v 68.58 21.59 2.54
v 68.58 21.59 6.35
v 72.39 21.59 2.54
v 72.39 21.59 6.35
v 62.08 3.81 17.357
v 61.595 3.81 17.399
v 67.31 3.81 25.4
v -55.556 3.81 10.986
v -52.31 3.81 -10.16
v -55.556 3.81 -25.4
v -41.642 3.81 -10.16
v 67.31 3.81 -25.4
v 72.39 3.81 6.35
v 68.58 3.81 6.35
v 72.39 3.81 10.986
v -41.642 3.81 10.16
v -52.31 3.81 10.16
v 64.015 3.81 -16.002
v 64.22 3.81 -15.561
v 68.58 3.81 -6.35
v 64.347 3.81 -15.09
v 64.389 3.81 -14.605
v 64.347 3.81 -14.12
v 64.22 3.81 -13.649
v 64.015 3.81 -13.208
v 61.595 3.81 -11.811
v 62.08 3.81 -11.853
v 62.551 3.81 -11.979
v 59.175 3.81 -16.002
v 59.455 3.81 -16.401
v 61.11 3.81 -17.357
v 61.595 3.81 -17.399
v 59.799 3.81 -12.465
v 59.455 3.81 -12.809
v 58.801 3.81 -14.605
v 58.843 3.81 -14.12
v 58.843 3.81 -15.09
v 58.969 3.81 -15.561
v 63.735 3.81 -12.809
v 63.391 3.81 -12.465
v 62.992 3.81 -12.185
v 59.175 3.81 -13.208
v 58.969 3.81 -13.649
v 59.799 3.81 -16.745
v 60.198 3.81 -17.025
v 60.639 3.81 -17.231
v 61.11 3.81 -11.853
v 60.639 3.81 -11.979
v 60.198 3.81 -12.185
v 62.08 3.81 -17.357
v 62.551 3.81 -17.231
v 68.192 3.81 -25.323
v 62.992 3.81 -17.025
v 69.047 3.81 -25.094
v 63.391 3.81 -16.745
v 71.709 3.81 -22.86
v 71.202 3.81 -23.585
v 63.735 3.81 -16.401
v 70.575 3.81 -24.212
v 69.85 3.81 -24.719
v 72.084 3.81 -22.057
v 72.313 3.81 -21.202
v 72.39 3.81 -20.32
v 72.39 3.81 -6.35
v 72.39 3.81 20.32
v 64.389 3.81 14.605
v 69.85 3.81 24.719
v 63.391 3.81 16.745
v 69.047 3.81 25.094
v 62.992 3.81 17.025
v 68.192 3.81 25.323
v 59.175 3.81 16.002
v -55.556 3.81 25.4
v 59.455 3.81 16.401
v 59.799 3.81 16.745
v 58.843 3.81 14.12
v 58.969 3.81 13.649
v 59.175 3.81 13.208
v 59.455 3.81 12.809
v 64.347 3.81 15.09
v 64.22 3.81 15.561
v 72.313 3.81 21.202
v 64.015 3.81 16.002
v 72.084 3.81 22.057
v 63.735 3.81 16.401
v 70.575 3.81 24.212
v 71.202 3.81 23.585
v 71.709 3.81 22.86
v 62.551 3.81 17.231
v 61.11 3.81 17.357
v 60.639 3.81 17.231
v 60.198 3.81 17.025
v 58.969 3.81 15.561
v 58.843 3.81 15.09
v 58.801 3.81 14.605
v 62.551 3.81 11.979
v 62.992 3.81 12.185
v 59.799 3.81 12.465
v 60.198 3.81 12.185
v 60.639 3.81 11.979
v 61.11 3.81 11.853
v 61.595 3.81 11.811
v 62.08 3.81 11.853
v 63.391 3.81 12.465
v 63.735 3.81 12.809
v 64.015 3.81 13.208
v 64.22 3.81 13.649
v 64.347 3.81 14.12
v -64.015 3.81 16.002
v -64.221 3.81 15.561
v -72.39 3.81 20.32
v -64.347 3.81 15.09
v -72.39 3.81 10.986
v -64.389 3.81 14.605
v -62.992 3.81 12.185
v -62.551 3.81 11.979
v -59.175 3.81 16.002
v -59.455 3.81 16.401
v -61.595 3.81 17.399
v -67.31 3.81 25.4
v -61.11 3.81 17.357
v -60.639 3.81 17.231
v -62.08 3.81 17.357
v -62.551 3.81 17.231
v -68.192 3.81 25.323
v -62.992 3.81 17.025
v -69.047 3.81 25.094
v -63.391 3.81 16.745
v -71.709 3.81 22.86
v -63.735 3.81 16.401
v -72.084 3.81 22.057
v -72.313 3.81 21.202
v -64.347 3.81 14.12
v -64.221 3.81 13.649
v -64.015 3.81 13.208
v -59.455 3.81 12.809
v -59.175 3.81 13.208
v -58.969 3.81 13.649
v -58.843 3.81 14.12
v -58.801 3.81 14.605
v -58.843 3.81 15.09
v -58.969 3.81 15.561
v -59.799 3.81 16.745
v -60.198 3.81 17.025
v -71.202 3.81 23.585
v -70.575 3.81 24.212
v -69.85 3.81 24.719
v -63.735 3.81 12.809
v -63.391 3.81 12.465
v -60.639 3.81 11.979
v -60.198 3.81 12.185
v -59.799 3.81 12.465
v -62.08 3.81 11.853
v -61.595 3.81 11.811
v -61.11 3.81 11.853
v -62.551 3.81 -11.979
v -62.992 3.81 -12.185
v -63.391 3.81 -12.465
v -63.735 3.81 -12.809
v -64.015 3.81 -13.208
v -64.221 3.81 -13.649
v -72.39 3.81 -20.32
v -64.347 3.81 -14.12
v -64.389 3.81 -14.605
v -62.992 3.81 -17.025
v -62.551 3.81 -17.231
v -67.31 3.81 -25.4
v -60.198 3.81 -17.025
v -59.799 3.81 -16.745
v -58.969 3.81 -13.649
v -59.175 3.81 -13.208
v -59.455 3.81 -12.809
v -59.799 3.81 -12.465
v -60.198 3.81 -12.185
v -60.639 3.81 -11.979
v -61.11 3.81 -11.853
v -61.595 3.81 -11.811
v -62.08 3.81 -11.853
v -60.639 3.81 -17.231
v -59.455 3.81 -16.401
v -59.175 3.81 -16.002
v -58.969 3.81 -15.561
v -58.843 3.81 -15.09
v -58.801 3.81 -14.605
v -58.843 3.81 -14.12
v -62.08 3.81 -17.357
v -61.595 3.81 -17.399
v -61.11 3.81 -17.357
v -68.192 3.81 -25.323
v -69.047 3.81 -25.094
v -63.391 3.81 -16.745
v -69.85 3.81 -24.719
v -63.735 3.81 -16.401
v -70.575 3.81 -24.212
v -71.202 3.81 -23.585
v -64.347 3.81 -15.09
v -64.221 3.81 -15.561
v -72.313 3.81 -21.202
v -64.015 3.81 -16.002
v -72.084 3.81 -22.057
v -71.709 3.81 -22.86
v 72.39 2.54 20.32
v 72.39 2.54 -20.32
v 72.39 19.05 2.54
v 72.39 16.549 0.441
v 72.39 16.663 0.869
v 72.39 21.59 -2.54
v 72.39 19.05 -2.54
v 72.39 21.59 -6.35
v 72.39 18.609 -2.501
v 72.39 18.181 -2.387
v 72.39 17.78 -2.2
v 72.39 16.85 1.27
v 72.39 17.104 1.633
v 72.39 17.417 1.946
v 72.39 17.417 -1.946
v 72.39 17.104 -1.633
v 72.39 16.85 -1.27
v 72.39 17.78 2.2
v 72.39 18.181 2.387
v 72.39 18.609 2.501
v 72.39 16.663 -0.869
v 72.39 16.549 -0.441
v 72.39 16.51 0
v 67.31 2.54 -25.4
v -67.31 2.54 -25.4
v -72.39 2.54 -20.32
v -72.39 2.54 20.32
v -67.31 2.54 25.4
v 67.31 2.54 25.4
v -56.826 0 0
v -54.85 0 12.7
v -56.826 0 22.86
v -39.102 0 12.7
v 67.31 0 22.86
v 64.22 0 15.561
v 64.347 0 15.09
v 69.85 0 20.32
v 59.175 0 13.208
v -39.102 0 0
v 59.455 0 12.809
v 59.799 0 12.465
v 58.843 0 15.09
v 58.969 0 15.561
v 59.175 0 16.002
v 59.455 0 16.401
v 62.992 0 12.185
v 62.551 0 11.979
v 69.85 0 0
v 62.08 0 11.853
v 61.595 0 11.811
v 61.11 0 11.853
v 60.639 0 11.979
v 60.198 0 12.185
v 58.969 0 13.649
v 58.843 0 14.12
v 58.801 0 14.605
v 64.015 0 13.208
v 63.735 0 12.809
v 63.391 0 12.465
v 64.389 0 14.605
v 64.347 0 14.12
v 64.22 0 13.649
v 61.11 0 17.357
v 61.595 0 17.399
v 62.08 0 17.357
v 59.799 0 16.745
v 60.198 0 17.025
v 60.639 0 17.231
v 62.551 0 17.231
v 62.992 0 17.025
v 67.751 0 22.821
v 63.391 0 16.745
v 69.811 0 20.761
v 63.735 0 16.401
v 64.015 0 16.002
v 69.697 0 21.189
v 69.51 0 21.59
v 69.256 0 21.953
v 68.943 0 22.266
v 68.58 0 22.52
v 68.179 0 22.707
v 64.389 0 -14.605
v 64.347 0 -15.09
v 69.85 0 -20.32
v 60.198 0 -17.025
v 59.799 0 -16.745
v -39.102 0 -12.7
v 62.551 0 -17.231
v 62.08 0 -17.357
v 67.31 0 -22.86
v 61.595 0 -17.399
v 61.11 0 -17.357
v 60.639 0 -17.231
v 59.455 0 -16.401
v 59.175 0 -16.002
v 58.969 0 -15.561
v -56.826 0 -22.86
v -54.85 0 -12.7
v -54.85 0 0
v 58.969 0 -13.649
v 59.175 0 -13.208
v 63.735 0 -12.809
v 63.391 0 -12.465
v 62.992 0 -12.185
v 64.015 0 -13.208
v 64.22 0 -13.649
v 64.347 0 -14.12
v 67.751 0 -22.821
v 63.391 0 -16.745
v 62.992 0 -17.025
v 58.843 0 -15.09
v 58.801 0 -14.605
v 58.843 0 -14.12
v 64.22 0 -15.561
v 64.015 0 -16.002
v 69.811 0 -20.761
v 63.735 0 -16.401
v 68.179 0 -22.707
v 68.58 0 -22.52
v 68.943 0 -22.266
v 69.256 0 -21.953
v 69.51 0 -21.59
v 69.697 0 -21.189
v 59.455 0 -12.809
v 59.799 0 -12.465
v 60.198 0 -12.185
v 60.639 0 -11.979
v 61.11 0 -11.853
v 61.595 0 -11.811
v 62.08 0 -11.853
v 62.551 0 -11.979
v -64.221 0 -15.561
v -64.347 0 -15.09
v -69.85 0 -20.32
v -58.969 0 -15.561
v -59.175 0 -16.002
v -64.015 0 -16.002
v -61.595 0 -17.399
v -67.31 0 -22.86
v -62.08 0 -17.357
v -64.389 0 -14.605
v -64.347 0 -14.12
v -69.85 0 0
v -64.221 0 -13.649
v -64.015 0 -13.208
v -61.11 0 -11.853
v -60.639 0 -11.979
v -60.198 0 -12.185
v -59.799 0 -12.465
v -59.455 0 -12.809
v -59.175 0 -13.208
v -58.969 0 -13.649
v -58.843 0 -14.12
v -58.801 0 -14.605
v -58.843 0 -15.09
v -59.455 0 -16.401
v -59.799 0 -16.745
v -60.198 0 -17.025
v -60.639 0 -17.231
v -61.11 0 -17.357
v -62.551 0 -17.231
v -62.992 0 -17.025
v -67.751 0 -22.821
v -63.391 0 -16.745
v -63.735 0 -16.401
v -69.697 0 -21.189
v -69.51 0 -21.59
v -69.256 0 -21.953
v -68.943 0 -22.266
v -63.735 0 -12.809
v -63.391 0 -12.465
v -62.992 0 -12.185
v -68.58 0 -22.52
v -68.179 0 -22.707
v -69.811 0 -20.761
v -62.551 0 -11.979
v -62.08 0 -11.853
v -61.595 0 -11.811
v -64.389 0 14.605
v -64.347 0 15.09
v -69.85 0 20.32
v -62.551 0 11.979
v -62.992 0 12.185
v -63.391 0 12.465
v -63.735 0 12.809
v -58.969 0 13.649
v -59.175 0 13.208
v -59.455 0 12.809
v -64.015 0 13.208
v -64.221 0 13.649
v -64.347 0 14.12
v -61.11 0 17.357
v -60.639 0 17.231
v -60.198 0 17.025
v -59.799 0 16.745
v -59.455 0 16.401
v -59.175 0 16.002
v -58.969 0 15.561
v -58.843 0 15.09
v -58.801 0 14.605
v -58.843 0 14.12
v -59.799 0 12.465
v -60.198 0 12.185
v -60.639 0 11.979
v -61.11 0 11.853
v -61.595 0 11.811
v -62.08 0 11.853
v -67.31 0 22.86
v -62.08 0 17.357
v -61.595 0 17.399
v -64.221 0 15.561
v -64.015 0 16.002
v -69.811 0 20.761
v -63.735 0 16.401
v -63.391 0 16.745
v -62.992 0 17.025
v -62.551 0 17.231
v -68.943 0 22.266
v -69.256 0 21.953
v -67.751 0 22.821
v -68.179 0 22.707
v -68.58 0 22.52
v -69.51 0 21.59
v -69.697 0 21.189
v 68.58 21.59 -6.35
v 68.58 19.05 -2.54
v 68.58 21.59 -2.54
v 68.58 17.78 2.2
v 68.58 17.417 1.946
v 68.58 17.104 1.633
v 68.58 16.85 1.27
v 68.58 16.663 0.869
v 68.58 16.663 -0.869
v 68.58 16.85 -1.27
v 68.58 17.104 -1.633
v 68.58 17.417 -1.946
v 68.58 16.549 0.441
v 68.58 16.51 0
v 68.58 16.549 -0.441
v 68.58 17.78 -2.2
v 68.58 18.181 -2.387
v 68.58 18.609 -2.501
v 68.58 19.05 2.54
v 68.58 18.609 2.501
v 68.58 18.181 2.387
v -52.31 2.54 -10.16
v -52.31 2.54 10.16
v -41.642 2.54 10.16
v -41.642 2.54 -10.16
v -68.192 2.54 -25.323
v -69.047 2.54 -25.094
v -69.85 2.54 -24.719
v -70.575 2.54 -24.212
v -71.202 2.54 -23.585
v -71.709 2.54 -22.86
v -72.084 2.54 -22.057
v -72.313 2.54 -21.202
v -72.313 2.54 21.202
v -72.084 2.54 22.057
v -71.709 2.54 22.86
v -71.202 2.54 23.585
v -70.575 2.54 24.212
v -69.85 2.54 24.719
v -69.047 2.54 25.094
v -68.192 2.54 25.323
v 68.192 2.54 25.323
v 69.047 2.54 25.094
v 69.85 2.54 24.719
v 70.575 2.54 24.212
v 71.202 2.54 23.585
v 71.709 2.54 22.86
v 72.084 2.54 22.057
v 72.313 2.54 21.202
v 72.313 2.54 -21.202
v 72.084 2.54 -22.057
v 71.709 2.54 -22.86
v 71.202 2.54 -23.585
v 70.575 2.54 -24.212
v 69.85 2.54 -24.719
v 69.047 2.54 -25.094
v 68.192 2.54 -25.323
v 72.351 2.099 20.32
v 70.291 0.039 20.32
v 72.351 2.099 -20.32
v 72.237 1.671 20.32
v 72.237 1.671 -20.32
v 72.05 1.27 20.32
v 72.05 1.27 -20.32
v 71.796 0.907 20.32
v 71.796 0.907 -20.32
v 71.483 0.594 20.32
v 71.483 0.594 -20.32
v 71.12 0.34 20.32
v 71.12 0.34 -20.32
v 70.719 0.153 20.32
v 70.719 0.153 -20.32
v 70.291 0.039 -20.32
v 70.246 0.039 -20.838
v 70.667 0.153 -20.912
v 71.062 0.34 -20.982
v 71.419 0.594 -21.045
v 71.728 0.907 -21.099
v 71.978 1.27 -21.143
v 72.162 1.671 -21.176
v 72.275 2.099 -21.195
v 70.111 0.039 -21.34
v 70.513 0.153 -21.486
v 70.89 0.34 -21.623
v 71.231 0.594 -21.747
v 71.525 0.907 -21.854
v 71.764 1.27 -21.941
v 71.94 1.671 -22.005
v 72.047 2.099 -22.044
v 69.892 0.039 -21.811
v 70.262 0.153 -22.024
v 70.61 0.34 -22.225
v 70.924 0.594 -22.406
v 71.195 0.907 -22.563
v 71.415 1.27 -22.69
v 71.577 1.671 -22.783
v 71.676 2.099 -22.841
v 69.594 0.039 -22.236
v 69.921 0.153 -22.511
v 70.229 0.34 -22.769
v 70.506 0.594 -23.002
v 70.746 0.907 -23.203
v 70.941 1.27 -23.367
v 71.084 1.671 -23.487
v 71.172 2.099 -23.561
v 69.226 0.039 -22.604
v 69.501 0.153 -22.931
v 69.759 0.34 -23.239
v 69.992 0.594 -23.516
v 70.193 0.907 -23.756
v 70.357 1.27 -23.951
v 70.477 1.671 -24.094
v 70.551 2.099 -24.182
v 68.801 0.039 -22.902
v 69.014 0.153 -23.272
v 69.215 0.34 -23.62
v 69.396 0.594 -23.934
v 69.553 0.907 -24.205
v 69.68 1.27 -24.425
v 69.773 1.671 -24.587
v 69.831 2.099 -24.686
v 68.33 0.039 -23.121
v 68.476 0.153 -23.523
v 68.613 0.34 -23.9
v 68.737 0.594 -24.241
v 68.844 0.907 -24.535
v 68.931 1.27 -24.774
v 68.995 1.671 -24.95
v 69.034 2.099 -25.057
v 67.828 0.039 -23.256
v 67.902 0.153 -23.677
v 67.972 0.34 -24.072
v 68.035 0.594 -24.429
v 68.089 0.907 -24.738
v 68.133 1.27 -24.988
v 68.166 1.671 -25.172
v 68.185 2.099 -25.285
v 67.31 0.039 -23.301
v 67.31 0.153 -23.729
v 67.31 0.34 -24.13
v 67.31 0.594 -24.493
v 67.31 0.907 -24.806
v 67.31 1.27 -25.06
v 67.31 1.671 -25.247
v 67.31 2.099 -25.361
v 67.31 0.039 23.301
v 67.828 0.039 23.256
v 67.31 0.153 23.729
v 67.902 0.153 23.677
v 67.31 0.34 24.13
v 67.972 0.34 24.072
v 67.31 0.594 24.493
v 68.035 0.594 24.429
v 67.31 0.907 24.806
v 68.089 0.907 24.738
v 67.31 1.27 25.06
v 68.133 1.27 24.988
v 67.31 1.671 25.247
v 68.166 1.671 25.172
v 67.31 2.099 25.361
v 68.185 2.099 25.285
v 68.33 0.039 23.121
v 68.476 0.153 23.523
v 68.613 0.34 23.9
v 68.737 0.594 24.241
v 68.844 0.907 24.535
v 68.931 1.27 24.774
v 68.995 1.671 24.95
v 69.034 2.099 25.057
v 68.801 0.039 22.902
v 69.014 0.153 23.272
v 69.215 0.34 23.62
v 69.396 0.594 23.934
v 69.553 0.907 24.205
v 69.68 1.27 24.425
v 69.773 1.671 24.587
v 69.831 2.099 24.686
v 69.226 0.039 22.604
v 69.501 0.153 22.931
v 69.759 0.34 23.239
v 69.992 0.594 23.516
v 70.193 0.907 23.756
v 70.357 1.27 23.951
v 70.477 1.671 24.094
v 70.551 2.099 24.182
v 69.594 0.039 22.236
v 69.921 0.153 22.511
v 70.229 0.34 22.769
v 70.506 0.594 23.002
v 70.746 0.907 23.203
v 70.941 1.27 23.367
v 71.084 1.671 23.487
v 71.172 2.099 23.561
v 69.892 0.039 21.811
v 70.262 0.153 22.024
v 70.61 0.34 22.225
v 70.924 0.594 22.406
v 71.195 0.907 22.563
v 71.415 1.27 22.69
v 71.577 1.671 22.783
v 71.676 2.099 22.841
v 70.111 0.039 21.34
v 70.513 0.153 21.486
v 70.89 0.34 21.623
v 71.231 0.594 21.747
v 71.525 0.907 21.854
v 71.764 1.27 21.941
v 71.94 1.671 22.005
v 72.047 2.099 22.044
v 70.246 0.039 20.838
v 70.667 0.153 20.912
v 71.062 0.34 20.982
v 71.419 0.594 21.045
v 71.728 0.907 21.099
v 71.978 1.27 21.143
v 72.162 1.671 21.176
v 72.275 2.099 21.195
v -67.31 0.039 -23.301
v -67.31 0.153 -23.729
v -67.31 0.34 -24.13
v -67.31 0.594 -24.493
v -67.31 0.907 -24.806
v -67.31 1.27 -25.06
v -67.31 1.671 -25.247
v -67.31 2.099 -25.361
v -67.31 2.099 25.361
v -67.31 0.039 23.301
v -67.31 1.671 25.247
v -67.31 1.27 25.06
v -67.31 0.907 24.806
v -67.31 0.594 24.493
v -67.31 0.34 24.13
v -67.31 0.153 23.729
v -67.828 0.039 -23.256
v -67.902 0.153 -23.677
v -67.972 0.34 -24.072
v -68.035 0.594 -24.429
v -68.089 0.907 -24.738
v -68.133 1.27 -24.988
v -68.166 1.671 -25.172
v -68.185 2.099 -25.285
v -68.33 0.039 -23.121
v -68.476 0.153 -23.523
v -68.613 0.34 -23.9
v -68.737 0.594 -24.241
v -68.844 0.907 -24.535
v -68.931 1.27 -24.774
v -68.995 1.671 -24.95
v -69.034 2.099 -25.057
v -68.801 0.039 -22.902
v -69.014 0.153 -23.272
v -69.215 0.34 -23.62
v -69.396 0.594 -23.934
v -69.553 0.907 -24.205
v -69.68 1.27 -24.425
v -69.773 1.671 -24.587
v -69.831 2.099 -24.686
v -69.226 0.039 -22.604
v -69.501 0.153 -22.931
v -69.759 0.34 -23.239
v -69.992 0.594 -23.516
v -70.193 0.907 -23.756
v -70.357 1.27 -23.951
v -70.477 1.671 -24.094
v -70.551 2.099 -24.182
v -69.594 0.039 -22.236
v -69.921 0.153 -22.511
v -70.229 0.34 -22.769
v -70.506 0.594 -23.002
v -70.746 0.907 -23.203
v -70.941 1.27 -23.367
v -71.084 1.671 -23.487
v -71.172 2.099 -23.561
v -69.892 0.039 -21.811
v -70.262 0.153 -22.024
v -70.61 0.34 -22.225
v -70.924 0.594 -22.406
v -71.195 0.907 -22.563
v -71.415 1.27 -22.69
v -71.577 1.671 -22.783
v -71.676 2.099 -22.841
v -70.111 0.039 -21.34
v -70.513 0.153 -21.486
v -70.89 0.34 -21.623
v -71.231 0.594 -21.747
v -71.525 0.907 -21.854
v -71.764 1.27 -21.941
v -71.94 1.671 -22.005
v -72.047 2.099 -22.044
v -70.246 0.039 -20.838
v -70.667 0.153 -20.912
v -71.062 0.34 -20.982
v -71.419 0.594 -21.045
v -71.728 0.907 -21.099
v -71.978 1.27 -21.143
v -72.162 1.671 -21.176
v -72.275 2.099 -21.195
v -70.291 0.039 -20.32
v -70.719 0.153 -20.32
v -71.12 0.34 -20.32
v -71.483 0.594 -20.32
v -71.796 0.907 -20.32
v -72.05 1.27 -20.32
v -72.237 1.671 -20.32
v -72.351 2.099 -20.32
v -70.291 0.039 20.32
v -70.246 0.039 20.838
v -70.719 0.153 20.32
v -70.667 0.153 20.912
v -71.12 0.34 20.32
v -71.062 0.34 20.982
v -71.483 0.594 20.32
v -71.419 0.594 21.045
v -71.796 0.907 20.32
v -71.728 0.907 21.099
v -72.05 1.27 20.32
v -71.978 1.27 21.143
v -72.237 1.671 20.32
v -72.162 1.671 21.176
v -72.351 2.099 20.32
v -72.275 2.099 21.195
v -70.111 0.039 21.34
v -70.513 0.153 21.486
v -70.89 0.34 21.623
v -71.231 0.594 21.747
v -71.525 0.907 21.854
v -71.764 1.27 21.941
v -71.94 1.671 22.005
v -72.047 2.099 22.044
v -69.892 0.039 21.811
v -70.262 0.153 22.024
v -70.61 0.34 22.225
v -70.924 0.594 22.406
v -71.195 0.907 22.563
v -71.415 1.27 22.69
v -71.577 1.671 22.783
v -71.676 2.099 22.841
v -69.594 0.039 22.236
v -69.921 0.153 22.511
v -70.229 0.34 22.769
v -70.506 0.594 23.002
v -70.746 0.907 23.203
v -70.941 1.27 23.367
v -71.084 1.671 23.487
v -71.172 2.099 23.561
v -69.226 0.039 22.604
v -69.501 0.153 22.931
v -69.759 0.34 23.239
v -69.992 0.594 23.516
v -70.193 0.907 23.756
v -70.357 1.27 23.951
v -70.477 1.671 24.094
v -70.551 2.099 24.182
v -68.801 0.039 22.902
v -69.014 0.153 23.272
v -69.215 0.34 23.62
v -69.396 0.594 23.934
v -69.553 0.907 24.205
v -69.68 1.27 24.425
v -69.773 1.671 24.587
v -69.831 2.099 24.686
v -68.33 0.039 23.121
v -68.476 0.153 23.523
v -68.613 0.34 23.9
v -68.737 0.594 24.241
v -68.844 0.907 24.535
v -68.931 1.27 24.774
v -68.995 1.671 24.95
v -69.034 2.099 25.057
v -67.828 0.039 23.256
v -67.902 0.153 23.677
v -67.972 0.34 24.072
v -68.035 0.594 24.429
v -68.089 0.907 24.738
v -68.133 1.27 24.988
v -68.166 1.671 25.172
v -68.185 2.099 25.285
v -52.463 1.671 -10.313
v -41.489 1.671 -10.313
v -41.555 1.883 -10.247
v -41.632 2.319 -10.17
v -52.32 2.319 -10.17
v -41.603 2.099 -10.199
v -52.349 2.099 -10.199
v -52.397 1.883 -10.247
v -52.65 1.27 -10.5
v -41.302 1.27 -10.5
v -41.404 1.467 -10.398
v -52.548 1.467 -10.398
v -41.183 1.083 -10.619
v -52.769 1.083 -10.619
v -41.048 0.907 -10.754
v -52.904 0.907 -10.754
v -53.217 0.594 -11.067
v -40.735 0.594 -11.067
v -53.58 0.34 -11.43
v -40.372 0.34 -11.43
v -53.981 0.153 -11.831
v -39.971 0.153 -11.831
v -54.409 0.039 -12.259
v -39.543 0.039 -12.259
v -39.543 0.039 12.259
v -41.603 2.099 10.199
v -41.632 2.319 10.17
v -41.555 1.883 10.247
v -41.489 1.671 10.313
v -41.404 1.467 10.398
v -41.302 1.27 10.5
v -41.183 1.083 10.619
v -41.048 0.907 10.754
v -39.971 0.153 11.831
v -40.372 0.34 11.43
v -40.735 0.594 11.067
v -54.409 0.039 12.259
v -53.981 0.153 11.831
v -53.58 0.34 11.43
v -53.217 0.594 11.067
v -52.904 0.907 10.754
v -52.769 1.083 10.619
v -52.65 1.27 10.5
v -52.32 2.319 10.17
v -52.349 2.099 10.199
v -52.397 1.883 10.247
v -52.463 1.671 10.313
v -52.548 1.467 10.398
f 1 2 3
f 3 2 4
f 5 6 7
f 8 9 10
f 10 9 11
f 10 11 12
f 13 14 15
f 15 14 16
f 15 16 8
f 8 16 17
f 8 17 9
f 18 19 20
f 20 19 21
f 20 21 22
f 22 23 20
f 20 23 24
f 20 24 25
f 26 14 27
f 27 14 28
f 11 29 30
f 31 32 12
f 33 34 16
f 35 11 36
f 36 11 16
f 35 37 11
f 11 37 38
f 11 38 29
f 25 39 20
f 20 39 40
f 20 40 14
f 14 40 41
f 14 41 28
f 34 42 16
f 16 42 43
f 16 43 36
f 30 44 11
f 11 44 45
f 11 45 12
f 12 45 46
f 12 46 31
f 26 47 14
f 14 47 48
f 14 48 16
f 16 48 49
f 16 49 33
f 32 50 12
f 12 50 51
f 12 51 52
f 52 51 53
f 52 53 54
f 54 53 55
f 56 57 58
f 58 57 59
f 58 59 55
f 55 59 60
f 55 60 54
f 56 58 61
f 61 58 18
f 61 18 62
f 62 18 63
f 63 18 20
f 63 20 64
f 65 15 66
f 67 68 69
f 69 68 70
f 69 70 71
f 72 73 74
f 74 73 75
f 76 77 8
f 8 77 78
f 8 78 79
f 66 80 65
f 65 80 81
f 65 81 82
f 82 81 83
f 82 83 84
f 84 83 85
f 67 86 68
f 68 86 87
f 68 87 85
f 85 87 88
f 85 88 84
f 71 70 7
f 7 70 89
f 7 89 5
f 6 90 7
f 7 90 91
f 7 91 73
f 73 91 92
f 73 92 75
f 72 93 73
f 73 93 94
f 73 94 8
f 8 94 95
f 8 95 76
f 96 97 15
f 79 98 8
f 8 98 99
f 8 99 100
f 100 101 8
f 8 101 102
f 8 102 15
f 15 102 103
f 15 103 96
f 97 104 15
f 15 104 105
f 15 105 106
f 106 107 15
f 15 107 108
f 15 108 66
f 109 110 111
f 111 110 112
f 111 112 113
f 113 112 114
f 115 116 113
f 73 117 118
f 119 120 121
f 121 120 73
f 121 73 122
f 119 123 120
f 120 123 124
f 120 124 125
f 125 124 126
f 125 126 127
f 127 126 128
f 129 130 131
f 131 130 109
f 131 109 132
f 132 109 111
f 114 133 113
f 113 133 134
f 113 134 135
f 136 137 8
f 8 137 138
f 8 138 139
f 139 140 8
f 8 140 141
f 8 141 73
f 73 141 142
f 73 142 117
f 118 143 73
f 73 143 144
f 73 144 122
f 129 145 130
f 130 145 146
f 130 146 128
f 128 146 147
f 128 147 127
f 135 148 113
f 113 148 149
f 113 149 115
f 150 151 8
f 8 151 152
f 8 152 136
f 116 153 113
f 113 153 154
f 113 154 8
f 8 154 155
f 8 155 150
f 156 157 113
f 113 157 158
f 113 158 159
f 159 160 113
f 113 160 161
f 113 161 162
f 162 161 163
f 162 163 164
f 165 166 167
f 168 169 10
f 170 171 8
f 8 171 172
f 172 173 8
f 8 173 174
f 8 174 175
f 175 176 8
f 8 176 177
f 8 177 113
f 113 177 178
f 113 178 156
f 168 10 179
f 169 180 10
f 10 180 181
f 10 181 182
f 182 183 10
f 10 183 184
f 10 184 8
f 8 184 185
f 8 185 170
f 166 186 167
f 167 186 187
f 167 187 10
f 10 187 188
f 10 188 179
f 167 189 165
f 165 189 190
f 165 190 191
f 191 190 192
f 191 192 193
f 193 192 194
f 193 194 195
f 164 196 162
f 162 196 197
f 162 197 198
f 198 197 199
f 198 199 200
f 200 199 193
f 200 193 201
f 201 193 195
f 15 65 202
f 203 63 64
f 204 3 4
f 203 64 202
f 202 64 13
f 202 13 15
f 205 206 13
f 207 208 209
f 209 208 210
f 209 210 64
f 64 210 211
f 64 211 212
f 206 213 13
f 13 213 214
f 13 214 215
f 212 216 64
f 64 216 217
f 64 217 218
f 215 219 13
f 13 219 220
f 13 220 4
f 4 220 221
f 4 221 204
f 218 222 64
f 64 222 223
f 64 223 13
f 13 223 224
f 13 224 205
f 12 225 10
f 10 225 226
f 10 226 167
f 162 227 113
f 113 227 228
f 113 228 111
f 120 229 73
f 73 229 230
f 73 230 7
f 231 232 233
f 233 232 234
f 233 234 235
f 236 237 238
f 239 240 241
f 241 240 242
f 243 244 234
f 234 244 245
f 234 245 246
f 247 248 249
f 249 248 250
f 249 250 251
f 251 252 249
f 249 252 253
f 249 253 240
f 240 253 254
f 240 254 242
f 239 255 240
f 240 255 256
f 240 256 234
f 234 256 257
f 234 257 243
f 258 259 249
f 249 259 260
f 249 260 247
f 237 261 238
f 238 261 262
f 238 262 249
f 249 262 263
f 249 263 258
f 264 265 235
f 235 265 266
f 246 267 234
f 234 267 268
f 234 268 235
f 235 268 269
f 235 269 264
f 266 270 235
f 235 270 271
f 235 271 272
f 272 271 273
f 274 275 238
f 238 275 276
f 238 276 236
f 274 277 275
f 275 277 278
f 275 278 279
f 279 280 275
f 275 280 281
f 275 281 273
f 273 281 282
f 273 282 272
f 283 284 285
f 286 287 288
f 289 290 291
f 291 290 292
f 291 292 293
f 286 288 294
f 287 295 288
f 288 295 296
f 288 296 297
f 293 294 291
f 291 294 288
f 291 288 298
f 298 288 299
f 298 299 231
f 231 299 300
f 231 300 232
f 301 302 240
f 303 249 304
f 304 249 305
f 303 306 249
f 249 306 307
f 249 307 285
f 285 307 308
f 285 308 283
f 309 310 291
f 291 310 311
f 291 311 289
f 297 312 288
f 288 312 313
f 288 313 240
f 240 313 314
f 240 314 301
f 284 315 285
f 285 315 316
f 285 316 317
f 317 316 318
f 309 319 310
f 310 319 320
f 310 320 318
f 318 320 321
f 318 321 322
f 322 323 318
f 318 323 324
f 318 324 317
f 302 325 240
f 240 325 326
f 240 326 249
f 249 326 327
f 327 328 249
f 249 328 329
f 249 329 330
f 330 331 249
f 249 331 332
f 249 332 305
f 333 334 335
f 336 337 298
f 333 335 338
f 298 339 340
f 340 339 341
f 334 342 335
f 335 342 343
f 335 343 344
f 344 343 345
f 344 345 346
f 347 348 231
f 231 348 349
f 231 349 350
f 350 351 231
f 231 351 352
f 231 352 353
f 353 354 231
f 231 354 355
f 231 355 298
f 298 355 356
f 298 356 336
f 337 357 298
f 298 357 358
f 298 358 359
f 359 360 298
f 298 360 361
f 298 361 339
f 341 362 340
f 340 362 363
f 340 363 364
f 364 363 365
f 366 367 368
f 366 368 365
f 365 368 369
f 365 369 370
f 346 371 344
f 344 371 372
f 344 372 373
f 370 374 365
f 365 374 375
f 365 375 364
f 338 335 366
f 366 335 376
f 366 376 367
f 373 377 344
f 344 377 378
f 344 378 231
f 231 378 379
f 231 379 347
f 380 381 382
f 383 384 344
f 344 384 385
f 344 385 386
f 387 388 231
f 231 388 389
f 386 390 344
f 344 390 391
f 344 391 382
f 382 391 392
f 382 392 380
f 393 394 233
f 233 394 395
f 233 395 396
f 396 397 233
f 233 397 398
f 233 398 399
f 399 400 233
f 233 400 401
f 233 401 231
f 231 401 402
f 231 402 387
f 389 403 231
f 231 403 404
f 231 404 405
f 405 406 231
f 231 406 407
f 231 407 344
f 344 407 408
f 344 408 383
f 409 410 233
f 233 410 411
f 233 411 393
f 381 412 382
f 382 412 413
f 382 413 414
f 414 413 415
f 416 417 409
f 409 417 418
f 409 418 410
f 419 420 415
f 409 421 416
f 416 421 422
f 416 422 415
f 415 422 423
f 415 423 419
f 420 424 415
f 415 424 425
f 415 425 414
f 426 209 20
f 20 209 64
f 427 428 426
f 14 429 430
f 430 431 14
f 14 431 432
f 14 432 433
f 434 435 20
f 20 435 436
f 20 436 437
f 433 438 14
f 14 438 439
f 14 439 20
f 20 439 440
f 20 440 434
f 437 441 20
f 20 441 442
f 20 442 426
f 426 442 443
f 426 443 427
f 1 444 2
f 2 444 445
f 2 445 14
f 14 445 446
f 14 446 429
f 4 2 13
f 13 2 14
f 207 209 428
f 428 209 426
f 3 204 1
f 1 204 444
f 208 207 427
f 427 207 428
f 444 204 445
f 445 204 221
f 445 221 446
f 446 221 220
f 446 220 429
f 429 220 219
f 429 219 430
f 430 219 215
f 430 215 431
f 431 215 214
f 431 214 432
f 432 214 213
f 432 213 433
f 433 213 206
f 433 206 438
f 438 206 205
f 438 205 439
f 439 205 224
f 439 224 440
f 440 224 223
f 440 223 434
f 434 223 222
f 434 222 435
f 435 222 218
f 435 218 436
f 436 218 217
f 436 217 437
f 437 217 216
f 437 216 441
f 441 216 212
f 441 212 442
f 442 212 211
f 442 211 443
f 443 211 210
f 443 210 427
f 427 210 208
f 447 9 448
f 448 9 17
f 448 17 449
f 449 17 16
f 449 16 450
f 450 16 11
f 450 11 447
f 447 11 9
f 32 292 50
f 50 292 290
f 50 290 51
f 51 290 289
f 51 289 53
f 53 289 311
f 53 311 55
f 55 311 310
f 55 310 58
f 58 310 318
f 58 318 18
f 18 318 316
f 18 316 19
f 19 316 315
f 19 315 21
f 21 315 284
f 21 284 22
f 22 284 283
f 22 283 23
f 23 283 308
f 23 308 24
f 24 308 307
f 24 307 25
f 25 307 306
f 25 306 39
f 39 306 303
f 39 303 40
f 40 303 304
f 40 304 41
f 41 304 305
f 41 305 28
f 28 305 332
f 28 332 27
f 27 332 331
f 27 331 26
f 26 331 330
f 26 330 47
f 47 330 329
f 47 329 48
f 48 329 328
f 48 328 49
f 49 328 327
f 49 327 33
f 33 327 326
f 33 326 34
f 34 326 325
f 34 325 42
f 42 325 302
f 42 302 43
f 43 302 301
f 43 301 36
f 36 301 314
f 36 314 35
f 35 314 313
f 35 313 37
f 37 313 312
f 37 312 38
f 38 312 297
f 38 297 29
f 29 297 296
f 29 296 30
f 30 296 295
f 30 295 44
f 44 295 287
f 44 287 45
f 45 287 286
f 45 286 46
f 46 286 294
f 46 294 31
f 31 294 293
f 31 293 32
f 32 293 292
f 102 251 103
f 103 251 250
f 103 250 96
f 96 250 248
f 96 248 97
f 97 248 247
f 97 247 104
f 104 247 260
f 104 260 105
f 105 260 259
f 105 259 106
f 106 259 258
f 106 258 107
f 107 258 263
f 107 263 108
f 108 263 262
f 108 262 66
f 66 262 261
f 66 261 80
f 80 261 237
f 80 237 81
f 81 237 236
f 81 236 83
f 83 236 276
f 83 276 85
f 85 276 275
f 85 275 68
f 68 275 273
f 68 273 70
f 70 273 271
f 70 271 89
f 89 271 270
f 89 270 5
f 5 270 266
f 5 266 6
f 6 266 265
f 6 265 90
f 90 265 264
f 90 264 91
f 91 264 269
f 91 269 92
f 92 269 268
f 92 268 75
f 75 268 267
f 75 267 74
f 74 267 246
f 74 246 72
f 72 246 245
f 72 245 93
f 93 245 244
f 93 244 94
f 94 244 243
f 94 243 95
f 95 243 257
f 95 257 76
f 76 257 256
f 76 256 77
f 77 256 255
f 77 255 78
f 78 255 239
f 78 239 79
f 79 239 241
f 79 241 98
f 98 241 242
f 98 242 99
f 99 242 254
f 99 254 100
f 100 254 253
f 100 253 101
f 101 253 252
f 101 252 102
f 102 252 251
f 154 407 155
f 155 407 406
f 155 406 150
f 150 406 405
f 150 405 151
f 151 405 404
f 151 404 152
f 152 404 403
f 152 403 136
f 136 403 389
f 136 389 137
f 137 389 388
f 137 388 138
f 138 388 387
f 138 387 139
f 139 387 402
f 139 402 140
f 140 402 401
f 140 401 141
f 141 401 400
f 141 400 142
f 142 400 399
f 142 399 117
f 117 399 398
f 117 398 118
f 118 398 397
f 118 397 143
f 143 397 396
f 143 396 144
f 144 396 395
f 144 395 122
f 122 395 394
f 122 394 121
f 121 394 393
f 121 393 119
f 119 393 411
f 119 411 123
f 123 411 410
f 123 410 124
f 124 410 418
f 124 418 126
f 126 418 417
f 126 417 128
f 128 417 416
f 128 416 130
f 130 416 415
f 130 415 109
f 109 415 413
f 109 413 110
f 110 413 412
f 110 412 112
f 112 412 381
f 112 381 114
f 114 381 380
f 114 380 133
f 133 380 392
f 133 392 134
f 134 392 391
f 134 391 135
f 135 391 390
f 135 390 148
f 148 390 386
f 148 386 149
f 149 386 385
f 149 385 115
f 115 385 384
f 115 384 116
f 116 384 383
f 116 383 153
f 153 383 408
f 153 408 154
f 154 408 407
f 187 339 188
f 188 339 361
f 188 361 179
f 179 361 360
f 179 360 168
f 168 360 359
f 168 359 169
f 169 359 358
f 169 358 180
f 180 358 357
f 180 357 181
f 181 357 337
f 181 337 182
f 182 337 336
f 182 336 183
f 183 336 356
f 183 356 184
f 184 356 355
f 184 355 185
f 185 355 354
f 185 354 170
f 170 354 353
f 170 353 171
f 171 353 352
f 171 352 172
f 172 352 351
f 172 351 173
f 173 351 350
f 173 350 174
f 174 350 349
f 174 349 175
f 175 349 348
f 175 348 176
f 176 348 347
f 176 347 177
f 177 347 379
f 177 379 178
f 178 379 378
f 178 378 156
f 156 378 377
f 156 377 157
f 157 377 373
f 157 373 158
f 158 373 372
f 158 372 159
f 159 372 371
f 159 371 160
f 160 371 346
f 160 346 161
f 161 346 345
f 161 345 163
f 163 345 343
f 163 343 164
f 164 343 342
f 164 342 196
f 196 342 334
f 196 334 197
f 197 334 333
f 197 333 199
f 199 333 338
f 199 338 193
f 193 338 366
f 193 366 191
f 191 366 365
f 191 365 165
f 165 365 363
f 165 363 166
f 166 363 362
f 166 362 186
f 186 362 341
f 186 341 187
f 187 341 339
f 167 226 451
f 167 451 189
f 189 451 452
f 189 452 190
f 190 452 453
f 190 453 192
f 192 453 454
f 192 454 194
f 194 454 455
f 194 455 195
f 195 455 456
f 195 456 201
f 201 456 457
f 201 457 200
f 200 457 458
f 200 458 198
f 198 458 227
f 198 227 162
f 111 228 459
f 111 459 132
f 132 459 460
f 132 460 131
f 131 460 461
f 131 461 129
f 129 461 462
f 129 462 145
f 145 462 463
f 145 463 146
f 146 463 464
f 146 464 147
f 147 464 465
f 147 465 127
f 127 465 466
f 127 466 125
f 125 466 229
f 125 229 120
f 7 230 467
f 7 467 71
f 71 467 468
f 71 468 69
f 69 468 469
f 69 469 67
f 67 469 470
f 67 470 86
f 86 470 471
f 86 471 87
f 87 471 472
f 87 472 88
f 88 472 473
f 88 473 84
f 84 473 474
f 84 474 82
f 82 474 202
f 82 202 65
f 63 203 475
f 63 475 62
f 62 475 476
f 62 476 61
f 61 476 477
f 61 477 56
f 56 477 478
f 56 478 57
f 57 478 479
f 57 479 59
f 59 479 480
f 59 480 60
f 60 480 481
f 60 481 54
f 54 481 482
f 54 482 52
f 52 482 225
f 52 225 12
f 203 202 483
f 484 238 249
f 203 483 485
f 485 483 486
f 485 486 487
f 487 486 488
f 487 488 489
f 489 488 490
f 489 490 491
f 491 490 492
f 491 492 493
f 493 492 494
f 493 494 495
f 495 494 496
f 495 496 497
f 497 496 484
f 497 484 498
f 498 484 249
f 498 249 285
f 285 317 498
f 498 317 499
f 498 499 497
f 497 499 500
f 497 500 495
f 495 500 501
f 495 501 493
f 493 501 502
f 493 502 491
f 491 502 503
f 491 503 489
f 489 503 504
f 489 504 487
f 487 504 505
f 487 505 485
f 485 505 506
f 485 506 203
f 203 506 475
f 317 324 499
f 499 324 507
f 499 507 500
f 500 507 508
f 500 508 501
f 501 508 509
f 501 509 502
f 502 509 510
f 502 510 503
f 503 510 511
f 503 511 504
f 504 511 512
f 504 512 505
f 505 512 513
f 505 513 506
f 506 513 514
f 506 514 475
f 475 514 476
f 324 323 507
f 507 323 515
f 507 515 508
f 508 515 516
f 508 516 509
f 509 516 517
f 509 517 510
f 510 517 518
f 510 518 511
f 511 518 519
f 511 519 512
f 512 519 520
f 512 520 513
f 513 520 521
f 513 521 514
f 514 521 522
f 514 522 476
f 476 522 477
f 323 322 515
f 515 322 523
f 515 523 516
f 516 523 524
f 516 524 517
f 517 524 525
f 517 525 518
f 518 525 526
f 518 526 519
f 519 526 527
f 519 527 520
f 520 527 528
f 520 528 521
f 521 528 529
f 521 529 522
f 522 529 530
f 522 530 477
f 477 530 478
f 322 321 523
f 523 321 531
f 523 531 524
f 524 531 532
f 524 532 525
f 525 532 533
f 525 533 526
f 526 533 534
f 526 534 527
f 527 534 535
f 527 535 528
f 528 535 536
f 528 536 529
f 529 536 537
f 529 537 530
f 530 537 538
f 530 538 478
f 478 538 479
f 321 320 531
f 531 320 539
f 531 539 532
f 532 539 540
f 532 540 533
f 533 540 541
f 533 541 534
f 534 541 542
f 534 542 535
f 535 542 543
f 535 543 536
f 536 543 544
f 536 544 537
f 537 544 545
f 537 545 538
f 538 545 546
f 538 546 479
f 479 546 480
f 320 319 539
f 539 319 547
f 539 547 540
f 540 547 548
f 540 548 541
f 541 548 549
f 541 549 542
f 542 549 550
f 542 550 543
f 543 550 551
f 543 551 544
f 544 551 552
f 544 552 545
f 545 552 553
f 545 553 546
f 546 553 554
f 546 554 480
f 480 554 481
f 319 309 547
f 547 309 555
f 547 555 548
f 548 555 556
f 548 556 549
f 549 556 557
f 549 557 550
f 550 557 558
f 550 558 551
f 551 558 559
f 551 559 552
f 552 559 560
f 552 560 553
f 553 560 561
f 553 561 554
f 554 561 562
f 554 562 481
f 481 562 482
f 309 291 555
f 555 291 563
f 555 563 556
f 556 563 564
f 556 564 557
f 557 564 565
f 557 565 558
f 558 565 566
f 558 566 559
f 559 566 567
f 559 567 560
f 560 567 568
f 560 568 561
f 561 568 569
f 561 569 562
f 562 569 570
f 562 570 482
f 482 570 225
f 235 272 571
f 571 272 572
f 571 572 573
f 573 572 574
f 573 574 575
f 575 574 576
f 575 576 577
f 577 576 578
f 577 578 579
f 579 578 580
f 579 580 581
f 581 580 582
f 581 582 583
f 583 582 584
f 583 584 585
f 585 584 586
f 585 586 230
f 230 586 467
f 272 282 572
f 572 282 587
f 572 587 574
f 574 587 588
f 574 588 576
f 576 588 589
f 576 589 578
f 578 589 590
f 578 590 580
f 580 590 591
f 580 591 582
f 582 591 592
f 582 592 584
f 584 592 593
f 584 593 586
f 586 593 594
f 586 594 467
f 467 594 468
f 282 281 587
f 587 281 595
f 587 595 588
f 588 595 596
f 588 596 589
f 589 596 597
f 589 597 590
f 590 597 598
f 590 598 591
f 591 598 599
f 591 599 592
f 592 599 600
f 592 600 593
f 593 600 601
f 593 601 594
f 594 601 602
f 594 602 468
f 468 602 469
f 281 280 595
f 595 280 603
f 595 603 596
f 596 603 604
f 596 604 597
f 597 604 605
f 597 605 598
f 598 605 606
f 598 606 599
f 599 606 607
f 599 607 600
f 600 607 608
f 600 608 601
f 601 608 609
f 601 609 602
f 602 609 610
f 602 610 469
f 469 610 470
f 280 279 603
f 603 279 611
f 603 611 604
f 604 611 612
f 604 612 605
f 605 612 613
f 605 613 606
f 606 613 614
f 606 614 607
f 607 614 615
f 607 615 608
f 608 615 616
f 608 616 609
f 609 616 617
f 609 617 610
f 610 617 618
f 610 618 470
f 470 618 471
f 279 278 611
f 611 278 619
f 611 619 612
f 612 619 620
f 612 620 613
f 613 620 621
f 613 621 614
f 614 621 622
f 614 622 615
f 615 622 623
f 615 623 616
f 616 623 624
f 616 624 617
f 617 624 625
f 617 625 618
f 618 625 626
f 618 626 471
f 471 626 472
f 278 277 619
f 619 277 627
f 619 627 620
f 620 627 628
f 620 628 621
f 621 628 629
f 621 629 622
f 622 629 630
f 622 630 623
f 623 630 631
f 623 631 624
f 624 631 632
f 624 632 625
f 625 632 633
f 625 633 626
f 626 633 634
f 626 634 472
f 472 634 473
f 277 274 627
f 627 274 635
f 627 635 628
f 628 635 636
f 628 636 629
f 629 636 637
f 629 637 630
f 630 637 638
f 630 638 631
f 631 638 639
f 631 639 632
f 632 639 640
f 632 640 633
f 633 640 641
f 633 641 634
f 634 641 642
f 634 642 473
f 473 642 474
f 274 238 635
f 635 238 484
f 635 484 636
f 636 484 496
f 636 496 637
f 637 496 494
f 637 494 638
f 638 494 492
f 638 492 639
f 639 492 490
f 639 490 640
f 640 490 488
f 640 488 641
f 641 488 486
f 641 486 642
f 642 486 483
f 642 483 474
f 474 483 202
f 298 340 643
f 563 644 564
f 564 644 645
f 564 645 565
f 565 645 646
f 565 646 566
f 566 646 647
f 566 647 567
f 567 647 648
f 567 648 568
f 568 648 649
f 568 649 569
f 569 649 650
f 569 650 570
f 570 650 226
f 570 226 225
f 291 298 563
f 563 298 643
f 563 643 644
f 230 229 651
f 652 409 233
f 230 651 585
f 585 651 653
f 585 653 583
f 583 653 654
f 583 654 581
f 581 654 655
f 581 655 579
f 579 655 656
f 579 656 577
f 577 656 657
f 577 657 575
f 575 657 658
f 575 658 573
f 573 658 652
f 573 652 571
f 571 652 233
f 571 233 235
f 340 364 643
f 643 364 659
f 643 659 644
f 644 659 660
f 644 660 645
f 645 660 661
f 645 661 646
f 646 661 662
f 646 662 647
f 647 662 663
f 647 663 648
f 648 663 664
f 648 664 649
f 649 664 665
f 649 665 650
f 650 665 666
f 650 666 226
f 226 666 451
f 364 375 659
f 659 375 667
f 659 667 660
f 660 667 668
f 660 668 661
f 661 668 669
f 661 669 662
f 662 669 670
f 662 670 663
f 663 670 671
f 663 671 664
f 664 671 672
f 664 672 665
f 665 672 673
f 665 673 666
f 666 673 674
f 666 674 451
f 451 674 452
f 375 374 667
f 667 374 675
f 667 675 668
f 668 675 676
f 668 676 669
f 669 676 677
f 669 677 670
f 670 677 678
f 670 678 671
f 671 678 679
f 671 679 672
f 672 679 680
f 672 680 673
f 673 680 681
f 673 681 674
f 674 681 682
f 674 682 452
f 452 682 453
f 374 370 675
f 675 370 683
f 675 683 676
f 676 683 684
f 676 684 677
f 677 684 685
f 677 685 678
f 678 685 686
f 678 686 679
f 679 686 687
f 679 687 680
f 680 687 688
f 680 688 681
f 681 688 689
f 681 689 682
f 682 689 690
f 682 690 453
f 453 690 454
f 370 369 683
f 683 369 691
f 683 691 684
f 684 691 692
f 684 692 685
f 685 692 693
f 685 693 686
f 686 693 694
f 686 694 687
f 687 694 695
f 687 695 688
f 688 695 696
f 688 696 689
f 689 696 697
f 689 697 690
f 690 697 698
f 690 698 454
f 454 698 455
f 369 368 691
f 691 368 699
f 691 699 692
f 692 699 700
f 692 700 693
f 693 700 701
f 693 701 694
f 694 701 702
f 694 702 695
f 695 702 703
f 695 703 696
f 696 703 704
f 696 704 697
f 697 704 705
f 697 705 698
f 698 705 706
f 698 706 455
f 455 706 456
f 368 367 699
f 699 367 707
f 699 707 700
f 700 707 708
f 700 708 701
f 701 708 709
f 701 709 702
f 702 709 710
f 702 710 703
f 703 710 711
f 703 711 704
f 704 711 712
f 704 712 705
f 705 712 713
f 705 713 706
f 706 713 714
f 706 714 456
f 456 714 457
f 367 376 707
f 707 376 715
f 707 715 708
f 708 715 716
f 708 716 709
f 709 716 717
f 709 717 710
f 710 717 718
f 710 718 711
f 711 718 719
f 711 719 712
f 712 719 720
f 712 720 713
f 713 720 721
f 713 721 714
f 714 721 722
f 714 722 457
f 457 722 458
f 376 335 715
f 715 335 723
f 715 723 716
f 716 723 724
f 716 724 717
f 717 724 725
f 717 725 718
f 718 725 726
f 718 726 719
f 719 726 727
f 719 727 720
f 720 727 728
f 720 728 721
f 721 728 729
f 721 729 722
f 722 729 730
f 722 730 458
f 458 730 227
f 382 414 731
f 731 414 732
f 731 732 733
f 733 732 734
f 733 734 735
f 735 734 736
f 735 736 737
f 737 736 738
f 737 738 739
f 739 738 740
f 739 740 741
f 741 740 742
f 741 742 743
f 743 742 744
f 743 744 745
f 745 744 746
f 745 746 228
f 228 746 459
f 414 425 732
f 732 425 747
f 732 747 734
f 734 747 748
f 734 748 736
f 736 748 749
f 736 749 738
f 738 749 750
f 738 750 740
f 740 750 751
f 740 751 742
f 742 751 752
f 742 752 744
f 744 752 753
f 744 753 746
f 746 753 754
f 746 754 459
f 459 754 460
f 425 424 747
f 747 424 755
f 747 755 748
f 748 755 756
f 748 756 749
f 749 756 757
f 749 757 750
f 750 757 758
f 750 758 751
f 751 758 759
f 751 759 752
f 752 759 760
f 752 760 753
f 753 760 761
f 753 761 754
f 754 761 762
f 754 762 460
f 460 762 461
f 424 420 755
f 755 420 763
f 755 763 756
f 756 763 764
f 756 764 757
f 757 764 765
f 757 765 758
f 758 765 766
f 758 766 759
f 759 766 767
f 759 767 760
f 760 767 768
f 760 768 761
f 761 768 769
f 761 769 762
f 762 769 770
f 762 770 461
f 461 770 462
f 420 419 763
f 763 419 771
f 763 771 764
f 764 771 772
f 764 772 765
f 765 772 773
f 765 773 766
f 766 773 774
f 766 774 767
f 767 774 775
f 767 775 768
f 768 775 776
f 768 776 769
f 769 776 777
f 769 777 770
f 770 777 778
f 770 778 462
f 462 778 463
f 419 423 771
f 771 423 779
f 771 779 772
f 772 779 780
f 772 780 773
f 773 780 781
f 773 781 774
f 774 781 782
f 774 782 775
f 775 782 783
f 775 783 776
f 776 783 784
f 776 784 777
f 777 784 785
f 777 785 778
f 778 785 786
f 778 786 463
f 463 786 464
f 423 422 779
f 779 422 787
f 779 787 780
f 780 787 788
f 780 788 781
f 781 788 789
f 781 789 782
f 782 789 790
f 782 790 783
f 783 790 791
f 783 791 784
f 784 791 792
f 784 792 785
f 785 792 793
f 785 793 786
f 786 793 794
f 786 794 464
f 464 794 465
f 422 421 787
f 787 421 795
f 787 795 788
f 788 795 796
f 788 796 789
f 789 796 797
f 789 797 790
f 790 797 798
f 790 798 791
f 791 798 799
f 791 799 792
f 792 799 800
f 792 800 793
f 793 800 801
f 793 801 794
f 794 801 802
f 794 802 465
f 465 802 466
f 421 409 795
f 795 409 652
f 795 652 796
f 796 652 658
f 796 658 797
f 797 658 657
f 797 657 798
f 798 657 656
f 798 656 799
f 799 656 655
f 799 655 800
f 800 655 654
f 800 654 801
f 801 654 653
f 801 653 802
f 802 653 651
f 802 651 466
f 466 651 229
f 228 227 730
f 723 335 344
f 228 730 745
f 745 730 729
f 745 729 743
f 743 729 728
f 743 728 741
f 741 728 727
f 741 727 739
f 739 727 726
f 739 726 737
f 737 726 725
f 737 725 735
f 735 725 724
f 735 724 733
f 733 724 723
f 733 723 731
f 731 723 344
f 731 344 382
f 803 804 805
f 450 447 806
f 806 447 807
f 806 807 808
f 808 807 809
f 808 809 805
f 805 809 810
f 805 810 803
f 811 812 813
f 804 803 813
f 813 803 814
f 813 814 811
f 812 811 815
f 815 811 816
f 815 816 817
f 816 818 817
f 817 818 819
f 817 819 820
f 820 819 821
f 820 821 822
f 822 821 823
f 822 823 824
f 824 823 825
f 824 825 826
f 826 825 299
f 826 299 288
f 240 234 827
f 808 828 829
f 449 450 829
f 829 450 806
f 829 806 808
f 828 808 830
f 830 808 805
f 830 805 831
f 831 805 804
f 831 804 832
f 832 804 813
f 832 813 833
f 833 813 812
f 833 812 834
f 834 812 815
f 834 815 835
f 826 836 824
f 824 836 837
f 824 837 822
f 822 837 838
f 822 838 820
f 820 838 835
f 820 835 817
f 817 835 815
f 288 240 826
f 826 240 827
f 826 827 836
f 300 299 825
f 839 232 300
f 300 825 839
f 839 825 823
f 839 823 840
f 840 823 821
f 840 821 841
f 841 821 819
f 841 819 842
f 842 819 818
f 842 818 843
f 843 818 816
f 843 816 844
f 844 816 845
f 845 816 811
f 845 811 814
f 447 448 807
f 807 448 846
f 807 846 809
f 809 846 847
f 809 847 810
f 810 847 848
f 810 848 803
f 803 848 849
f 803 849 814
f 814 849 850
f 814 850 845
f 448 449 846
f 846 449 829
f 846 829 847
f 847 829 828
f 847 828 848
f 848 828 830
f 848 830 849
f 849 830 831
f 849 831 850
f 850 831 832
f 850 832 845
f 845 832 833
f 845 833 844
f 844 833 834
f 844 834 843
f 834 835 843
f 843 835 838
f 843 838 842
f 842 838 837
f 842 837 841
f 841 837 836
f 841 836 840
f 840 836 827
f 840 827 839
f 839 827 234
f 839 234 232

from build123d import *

# Parameters (mm, degrees)
SKETCH1_W           = 144.78
SKETCH1_H           = 50.8
BOSS_EXTRUDE1_DEPTH = 3.81
SKETCH2_W           = 3.81
SKETCH2_H           = 12.7
BOSS_EXTRUDE2_DEPTH = 17.78
CUT_EXTRUDE1_REACH  = 146.78
SKETCH4_W           = 10.668
SKETCH4_H           = 20.32
CUT_EXTRUDE2_DEPTH  = 22.59
SKETCH5_R           = 2.794
CUT_EXTRUDE3_DEPTH  = 22.59
FILLET3_R           = 5.08
FILLET4_R           = 2.54


with BuildPart() as part:
    # Sketch1 → Boss-Extrude1 (new body)
    with BuildSketch(Plane(origin=(0, 0, 0), x_dir=(1, 0, 0), z_dir=(0, 1, 0))):
        Rectangle(SKETCH1_W, SKETCH1_H)
    extrude(amount=BOSS_EXTRUDE1_DEPTH)

    # Sketch2 → Boss-Extrude2 (add)
    with BuildSketch(Plane(origin=(0, 3.81, 0), x_dir=(1, 0, 0), z_dir=(0, 1, 0))):
        with Locations((70.485, 0)):
            Rectangle(SKETCH2_W, SKETCH2_H)
    extrude(amount=BOSS_EXTRUDE2_DEPTH)

    # Sketch3 → Cut-Extrude1 (cut, up to next)
    with BuildSketch(Plane(origin=(72.39, 0, 0), x_dir=(0, 0, -1), z_dir=(1, 0, 0)), mode=Mode.PRIVATE) as cut_extrude1_sk1:
        with BuildLine():
            Line((-2.54, 21.59), (2.54, 21.59))
            Line((2.54, 21.59), (2.54, 19.05))
            ThreePointArc((2.54, 19.05), (0, 16.51), (-2.54, 19.05))
            Line((-2.54, 19.05), (-2.54, 21.59))
        make_face()
    cut_extrude1_tool1 = extrude(cut_extrude1_sk1.sketch, amount=-CUT_EXTRUDE1_REACH, mode=Mode.PRIVATE) & part.part
    add(cut_extrude1_tool1.solids().sort_by_distance((72.39, 19.287109, 0))[0], mode=Mode.SUBTRACT)

    # Sketch4 → Cut-Extrude2 (cut, through all)
    with BuildSketch(Plane.XZ):
        with Locations((-46.976, 0)):
            Rectangle(SKETCH4_W, SKETCH4_H)
    extrude(amount=-CUT_EXTRUDE2_DEPTH, mode=Mode.SUBTRACT)

    # Sketch5 → Cut-Extrude3 (cut, through all)
    with BuildSketch(Plane.XZ):
        with Locations((61.595, -14.605)):
            Circle(SKETCH5_R)
        with Locations((61.595, 14.605)):
            Circle(SKETCH5_R)
        with Locations((-61.595, 14.605)):
            Circle(SKETCH5_R)
        with Locations((-61.595, -14.605)):
            Circle(SKETCH5_R)
    extrude(amount=-CUT_EXTRUDE3_DEPTH, mode=Mode.SUBTRACT)

    # Fillet3
    fillet3_edges = [part.edges().sort_by_distance(p)[0] for p in [
        (72.39, 1.905, 25.4),
        (-72.39, 1.905, 25.4),
        (-72.39, 1.905, -25.4),
        (72.39, 1.905, -25.4),
    ]]
    fillet(fillet3_edges, radius=FILLET3_R)

    # Fillet4
    fillet4_edges = [part.edges().sort_by_distance(p)[0] for p in [
        (-52.31, 0, 0),
        (-46.976, 0, -10.16),
        (-41.642, 0, 0),
        (-46.976, 0, 10.16),
        (-72.39, 0, 0),
        (72.39, 0, 0),
        (0, 0, 25.4),
        (0, 0, -25.4),
        (70.902102448, 0, -23.912102448),
        (70.902102448, 0, 23.912102448),
        (-70.902102448, 0, 23.912102448),
        (-70.902102448, 0, -23.912102448),
    ]]
    fillet(fillet4_edges, radius=FILLET4_R)


solid = part.part
